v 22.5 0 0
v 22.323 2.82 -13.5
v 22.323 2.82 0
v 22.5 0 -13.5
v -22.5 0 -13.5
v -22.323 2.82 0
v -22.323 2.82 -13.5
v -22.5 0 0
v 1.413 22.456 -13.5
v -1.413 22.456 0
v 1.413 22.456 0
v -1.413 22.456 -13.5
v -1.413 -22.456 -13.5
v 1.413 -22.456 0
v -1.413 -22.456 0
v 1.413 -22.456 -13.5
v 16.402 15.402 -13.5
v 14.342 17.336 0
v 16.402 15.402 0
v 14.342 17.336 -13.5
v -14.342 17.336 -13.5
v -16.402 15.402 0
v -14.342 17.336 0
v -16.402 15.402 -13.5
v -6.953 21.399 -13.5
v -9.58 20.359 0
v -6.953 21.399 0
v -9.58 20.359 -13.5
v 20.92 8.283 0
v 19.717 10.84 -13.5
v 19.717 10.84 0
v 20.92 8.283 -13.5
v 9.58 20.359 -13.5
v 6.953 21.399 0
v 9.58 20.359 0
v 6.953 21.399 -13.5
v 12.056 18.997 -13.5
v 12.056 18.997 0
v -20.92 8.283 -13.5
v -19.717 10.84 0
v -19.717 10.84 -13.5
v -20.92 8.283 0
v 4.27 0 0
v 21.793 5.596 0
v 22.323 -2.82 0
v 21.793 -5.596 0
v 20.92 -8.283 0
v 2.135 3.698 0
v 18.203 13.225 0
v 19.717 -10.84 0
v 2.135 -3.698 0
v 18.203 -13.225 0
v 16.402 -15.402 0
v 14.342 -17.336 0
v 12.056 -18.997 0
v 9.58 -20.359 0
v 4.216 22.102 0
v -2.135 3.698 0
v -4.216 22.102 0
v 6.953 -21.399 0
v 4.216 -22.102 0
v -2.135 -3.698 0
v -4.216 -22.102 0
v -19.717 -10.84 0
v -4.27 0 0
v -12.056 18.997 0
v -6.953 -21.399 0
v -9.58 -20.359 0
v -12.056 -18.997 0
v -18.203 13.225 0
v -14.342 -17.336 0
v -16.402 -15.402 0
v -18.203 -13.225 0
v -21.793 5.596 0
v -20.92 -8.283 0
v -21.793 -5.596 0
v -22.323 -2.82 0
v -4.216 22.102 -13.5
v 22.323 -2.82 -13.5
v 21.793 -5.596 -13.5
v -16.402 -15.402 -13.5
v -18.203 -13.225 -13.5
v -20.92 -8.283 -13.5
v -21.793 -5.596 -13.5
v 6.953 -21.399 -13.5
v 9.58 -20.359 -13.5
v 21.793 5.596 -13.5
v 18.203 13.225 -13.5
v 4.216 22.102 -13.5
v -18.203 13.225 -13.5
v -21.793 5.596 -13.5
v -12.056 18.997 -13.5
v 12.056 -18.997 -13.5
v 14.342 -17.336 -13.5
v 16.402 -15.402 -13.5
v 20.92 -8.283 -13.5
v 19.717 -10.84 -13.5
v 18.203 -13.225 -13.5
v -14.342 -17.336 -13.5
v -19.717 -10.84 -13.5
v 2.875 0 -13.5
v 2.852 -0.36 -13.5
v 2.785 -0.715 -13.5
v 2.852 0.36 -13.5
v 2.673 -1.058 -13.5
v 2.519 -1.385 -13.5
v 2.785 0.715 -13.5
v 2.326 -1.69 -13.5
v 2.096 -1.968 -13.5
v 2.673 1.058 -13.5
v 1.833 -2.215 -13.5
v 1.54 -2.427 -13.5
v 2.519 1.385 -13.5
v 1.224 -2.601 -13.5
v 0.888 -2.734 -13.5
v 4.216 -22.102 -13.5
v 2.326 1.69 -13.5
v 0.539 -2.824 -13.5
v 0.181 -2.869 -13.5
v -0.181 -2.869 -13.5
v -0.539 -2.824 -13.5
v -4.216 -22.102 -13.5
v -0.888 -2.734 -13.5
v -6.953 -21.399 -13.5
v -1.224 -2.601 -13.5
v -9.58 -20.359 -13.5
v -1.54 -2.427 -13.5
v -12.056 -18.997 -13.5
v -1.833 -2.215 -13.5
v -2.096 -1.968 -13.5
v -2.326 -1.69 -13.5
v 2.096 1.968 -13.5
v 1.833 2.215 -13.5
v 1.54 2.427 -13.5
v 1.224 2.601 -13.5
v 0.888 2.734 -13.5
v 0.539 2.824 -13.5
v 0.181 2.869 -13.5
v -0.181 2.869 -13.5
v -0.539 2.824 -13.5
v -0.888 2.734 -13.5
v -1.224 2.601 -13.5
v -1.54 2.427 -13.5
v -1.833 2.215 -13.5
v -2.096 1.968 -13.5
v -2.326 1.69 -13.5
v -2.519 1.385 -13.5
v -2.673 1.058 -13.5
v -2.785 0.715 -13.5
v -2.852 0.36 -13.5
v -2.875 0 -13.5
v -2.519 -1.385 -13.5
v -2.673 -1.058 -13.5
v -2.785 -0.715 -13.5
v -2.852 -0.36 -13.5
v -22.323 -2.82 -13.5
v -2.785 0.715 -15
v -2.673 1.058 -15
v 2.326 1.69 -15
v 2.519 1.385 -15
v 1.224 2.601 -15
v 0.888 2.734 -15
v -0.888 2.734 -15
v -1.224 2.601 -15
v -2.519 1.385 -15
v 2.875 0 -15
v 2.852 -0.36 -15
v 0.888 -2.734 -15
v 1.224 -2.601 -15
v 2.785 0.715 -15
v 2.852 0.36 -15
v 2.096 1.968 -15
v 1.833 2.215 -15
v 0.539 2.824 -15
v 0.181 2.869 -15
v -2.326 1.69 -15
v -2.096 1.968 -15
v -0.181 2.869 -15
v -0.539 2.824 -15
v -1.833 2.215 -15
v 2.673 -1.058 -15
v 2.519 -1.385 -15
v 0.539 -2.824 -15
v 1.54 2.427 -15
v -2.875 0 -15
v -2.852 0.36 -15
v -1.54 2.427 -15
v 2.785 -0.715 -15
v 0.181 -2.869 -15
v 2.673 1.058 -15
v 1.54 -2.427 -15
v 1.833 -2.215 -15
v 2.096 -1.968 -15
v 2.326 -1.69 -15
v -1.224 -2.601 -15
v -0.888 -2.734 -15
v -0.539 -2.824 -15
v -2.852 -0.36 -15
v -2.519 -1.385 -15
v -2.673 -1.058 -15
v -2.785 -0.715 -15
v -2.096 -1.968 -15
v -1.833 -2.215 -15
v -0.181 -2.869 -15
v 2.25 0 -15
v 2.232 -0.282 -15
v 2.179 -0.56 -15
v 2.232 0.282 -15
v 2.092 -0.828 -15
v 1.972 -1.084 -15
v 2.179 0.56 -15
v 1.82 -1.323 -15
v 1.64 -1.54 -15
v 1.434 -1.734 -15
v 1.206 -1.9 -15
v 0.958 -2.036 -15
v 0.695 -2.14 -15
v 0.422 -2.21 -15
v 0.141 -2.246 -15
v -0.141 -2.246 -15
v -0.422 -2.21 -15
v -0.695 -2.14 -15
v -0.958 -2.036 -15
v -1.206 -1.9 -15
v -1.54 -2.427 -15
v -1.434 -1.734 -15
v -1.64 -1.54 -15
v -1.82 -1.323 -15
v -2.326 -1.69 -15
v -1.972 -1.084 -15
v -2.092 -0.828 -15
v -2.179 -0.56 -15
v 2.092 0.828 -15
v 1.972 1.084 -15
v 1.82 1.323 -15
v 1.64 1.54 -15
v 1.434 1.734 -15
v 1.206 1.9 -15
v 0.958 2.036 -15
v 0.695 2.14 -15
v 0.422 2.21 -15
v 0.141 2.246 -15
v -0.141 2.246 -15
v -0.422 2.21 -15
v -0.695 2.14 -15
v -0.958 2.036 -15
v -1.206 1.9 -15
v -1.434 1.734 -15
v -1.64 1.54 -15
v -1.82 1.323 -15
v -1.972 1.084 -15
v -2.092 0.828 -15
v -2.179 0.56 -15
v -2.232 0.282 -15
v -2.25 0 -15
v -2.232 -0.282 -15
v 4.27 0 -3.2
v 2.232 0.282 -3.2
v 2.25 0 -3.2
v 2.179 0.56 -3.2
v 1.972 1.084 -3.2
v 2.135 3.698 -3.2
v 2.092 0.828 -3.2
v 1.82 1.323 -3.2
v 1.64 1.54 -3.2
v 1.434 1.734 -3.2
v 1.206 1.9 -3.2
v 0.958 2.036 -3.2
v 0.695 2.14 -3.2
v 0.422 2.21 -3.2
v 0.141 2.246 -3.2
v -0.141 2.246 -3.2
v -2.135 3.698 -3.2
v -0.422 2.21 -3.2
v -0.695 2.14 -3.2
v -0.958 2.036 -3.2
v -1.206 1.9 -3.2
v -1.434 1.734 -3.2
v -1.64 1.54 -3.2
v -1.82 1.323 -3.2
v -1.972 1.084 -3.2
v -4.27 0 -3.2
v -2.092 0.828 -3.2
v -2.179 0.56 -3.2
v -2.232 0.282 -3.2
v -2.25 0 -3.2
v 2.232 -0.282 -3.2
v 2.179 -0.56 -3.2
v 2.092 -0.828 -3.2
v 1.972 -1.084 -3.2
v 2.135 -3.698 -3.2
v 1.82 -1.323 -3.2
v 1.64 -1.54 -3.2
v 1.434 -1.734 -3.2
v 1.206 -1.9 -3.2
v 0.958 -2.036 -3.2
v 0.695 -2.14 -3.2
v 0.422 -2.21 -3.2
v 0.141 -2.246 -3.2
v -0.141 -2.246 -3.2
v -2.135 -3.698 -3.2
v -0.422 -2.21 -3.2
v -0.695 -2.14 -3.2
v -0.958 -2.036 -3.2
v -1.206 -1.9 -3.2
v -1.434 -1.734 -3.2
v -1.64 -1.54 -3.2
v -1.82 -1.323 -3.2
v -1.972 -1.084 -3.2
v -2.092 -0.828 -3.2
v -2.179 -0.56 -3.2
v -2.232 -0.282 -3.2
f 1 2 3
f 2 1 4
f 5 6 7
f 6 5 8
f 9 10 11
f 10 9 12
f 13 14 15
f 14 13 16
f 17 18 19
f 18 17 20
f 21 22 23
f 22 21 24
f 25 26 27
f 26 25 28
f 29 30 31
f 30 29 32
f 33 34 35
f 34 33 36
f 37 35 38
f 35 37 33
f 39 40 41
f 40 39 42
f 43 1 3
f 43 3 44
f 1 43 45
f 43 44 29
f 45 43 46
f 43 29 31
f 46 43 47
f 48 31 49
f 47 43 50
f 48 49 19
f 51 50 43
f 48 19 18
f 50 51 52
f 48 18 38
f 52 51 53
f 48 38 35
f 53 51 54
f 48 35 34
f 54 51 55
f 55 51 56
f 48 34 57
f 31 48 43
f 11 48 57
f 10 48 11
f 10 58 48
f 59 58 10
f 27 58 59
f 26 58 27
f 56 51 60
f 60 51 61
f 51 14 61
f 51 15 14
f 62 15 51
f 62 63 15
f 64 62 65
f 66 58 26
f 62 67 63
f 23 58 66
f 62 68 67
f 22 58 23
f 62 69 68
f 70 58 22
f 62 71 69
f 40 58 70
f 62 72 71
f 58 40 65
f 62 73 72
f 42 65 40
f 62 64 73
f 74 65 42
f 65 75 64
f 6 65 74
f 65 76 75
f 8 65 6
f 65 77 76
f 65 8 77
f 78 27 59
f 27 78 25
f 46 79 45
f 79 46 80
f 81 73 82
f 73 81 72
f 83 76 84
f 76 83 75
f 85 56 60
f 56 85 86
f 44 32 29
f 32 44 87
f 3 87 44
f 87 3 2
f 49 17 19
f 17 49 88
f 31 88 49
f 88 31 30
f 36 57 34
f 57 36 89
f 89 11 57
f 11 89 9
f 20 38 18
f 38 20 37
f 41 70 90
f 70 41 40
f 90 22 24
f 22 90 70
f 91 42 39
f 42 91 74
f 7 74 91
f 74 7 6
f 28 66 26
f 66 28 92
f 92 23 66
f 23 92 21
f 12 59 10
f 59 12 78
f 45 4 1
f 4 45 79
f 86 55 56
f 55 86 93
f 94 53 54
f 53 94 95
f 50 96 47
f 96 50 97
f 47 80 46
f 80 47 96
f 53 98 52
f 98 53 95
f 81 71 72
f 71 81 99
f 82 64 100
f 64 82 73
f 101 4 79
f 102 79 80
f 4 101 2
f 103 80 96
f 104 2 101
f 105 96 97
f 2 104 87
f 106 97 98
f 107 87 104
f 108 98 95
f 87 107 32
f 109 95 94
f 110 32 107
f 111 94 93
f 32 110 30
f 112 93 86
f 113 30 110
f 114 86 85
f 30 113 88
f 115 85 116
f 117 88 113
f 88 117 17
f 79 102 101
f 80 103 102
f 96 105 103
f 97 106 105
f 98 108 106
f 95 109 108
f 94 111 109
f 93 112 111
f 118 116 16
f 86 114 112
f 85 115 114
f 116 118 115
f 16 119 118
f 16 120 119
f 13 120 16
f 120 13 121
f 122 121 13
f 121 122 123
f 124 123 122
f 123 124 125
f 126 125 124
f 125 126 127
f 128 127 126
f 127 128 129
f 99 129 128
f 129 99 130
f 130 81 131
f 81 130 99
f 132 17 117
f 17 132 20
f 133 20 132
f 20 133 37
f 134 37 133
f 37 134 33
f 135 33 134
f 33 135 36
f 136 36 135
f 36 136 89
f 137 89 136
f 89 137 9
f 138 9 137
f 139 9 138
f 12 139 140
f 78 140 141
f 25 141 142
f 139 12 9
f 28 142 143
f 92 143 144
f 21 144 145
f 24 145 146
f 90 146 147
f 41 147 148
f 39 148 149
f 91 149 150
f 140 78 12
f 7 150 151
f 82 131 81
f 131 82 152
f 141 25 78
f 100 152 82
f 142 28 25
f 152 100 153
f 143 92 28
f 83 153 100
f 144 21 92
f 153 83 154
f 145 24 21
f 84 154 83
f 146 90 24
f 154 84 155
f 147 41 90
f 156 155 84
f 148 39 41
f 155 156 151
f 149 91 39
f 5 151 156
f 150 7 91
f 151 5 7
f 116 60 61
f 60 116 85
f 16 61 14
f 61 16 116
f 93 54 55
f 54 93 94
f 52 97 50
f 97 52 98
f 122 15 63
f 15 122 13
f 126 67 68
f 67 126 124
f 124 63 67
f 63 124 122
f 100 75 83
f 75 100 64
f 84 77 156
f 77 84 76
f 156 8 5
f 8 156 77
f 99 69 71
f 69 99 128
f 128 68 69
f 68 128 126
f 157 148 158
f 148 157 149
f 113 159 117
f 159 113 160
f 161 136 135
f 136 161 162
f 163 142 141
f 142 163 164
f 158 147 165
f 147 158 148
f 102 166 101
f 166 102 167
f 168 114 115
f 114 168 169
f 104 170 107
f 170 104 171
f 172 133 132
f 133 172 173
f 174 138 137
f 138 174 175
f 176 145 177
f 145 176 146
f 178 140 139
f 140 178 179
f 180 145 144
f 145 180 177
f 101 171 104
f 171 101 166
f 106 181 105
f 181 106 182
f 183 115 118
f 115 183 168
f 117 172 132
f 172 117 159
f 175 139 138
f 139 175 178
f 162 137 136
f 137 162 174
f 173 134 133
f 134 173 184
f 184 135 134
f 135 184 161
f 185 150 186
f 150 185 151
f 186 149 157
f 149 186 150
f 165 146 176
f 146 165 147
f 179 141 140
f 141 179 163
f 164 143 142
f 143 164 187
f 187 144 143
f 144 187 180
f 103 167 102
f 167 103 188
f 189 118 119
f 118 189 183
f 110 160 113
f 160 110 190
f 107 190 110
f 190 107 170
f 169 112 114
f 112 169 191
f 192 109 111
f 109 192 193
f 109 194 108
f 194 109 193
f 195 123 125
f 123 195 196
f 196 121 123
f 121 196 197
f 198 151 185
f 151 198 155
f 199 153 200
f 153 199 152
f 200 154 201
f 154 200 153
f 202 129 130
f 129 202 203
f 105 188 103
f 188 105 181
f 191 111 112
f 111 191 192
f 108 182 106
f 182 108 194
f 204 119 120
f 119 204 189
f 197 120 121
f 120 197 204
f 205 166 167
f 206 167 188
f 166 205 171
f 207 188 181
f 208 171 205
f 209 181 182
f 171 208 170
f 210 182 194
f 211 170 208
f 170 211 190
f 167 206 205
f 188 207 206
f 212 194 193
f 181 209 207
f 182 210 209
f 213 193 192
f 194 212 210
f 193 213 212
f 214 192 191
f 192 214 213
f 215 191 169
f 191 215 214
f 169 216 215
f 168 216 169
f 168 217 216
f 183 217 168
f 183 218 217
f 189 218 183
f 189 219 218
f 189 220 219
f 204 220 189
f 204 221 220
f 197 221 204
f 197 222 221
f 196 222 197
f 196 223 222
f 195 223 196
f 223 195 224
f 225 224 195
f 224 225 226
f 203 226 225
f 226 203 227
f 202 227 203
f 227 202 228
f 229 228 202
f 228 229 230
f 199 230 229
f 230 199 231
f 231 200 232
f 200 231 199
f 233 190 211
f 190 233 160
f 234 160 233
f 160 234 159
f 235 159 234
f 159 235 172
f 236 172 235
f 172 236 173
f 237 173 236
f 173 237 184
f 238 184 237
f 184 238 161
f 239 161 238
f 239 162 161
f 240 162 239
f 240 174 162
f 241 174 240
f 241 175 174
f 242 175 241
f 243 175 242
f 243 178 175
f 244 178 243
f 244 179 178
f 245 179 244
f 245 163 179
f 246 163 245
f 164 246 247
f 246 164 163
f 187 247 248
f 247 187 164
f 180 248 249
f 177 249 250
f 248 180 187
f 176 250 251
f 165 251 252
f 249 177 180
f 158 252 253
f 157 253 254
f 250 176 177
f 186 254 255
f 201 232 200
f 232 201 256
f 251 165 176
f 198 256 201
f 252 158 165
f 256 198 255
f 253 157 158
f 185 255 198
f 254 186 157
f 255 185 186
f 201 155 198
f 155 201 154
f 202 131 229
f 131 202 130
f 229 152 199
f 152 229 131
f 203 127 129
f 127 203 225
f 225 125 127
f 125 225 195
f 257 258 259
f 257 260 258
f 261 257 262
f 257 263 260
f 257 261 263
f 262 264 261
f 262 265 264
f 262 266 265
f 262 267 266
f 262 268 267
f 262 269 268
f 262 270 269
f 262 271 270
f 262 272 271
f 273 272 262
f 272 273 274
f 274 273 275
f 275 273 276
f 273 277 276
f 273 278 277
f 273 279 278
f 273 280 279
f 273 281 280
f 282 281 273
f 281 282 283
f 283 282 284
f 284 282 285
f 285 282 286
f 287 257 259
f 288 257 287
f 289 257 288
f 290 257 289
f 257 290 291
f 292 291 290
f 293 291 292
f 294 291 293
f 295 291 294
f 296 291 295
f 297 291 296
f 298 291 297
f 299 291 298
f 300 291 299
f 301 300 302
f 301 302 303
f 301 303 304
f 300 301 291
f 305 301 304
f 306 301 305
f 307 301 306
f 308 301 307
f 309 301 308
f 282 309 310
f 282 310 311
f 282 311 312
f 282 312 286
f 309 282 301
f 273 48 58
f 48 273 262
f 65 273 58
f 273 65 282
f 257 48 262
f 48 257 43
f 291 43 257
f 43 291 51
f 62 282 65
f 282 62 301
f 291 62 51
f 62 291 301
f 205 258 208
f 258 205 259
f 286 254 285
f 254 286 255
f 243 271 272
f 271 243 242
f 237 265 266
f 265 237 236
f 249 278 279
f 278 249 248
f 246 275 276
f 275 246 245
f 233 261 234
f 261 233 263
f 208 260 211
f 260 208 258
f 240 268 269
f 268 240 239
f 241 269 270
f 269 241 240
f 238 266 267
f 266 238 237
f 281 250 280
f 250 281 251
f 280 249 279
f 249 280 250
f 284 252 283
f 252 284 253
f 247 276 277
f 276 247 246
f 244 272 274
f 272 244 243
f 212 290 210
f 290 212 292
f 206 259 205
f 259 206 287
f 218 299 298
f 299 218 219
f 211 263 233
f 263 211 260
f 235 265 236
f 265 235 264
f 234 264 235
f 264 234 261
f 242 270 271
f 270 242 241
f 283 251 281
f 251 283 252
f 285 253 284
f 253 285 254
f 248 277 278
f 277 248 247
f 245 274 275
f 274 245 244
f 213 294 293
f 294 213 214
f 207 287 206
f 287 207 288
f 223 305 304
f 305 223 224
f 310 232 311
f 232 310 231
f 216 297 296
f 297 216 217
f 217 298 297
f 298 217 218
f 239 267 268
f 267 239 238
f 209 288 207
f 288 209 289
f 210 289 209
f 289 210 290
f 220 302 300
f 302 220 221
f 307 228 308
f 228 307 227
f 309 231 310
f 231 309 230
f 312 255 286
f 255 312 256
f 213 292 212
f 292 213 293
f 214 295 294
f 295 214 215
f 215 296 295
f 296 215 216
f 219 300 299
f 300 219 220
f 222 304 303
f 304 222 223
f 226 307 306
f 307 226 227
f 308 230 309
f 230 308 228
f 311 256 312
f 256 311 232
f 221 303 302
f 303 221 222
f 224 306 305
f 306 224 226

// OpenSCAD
$fn = 50;

difference() {
	union() {
		translate(v = [0, 0, -13.5]) {
			cylinder(h = 13.5, r = 22.5);
		}
		#translate(v = [0, 0, -15.0]) {
			cylinder(h = 15, r = 2.875);
		}
	}
	union() {
		translate(v = [0, 0, 0]) {
			rotate(a = [0, 0, 0]) {
				difference() {
					union() {
						translate(v = [0, 0, -3.2]) {
							linear_extrude(height = 3.2) {
								polygon(points = [[4.2698, 0.0], [2.1349000000000005, 3.697755269078796], [-2.134899999999999, 3.6977552690787965], [-4.2698, 5.228996902999369e-16], [-2.134900000000002, -3.6977552690787956], [2.1348999999999974, -3.697755269078798]]);
							}
						}
					}
					union();
				}
			}
		}
		#translate(v = [0, 0, -100.0]) {
			cylinder(h = 200, r = 2.25);
		}
	}
}
